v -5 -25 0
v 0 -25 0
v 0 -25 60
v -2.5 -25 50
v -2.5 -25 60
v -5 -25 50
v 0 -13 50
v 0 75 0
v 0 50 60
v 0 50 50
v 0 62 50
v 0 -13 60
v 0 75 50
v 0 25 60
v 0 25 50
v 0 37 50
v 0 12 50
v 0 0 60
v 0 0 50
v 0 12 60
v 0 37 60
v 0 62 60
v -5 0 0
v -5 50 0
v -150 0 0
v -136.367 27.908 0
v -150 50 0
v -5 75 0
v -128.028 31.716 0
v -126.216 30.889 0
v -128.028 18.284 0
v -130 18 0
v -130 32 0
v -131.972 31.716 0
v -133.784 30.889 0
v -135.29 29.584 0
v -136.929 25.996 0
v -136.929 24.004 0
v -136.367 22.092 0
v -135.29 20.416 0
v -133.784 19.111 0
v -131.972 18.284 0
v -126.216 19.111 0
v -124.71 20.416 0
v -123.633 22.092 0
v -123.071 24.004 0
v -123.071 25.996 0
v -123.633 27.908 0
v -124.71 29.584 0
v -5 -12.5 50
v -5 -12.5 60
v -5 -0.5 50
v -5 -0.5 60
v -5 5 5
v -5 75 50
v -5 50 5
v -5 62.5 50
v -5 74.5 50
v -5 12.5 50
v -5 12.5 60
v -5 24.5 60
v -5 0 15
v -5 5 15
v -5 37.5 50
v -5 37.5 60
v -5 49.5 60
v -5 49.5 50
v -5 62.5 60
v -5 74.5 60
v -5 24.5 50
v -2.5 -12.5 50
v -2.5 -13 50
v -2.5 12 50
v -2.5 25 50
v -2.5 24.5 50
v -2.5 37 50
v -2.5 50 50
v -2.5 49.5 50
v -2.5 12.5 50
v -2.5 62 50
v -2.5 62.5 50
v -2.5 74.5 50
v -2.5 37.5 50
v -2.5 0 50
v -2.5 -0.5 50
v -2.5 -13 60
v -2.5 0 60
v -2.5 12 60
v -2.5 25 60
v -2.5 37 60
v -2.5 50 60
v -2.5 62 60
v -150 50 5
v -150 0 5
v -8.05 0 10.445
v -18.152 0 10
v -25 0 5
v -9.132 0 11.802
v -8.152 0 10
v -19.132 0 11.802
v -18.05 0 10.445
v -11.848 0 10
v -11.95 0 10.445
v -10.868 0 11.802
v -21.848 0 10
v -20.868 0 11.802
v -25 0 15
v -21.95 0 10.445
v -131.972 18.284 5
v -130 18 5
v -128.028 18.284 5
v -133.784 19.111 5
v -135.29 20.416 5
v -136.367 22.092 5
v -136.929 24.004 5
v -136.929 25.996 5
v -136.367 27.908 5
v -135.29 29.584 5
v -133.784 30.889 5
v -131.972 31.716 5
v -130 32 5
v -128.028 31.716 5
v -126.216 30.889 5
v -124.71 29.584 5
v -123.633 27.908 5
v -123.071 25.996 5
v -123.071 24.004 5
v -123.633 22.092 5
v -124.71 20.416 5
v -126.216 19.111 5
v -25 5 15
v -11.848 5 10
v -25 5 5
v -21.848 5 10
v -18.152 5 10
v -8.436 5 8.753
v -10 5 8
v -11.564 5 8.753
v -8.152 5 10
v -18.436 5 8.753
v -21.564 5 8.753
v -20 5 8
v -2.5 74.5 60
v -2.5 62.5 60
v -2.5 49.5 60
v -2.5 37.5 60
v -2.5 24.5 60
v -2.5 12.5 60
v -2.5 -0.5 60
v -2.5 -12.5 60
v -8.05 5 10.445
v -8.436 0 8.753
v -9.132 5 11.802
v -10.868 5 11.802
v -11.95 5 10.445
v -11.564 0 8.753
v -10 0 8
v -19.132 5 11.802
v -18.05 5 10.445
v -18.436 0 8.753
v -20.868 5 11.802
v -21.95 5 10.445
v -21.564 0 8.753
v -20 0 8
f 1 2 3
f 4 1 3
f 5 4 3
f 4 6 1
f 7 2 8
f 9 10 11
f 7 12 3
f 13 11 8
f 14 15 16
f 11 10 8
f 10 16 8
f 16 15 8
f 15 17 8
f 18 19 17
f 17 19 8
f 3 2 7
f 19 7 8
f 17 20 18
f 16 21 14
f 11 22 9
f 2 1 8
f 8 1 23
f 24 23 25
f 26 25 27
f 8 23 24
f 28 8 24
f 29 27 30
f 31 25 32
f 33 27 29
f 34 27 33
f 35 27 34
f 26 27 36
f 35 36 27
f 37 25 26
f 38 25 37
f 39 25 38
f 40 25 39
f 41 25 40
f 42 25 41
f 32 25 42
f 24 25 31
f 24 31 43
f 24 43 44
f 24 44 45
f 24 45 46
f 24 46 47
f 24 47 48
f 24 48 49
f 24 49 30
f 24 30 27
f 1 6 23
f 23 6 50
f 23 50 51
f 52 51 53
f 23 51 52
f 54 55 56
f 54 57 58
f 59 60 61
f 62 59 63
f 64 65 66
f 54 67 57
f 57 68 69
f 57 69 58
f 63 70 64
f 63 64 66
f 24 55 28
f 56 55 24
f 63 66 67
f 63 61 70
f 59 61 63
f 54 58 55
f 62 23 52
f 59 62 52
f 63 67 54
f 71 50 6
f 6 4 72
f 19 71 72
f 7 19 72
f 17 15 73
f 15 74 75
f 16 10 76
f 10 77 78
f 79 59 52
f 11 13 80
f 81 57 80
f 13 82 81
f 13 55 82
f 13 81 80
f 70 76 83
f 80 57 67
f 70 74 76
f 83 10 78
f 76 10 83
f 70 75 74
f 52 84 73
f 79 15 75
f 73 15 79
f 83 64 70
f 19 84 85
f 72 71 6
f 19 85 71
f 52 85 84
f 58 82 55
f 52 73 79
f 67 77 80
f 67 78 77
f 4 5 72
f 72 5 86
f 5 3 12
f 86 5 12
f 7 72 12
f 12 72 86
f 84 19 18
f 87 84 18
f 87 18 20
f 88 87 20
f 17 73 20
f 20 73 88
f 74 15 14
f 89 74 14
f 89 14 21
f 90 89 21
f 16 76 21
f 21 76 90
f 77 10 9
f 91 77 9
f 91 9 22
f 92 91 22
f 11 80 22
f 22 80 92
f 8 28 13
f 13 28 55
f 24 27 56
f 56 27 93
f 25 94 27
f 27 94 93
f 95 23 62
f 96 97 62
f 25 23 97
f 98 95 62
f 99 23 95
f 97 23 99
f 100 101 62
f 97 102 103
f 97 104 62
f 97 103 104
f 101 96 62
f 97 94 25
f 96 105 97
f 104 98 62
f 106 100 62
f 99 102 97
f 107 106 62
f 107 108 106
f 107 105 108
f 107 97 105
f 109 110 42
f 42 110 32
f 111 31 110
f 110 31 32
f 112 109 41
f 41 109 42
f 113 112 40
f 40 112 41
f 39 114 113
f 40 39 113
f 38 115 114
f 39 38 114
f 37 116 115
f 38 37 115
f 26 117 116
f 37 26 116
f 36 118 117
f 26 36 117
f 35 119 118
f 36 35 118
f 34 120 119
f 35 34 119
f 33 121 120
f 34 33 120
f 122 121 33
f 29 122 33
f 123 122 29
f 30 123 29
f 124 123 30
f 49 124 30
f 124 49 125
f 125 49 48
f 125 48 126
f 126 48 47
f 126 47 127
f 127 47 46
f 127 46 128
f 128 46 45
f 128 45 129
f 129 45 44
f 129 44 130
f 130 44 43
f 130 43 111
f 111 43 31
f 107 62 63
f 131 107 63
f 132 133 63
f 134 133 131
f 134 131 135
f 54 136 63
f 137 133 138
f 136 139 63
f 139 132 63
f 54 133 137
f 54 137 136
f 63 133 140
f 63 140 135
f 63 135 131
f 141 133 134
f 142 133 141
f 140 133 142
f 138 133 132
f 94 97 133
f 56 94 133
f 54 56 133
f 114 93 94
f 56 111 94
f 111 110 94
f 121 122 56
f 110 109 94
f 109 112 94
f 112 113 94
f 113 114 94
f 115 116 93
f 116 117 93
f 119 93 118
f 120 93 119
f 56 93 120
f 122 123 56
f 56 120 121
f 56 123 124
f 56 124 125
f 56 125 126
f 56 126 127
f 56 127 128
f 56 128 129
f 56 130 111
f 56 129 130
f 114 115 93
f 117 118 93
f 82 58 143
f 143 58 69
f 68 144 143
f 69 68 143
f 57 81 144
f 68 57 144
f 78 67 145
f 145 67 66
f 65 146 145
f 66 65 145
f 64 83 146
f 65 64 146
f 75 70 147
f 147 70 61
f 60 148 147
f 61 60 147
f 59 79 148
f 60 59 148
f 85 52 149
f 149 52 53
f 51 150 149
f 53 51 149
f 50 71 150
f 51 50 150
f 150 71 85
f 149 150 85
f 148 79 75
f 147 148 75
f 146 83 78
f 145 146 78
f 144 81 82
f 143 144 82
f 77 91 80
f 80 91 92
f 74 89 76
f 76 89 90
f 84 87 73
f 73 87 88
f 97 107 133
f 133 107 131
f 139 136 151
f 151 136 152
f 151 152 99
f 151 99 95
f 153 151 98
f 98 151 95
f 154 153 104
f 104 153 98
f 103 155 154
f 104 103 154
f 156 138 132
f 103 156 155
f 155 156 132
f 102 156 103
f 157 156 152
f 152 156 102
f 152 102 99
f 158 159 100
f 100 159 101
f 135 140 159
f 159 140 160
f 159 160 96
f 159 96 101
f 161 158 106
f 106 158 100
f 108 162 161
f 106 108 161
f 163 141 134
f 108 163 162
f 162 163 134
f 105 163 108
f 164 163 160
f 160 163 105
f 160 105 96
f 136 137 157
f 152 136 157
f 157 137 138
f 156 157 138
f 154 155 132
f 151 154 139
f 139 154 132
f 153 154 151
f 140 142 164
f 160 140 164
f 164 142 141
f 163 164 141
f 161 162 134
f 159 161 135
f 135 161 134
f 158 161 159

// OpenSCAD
thickness = 5;

rotate(90) {
difference() {
	cube([50, 150, thickness]);
	translate([25,130,0]) {cylinder(thickness, r=7);}
}

translate([-25,0,0]) {
	cube([100, thickness, 50]);

	for ( i = [0 : 3] ) {
		translate([i*25,0,50]) {
			cube([12,thickness/2,10]);
			translate([12.5,thickness/2,0]) {cube([12,thickness/2,10]);}
		}
	}
}

difference() {
	translate([0,5,5]) {cube([5,20,10]);}
	for (i = [[0,10,10], [0,20,10]]) {
		translate(i) {
			rotate([0,90]) {
				cylinder(thickness, r=2);
			}
		}
	}
}
}
